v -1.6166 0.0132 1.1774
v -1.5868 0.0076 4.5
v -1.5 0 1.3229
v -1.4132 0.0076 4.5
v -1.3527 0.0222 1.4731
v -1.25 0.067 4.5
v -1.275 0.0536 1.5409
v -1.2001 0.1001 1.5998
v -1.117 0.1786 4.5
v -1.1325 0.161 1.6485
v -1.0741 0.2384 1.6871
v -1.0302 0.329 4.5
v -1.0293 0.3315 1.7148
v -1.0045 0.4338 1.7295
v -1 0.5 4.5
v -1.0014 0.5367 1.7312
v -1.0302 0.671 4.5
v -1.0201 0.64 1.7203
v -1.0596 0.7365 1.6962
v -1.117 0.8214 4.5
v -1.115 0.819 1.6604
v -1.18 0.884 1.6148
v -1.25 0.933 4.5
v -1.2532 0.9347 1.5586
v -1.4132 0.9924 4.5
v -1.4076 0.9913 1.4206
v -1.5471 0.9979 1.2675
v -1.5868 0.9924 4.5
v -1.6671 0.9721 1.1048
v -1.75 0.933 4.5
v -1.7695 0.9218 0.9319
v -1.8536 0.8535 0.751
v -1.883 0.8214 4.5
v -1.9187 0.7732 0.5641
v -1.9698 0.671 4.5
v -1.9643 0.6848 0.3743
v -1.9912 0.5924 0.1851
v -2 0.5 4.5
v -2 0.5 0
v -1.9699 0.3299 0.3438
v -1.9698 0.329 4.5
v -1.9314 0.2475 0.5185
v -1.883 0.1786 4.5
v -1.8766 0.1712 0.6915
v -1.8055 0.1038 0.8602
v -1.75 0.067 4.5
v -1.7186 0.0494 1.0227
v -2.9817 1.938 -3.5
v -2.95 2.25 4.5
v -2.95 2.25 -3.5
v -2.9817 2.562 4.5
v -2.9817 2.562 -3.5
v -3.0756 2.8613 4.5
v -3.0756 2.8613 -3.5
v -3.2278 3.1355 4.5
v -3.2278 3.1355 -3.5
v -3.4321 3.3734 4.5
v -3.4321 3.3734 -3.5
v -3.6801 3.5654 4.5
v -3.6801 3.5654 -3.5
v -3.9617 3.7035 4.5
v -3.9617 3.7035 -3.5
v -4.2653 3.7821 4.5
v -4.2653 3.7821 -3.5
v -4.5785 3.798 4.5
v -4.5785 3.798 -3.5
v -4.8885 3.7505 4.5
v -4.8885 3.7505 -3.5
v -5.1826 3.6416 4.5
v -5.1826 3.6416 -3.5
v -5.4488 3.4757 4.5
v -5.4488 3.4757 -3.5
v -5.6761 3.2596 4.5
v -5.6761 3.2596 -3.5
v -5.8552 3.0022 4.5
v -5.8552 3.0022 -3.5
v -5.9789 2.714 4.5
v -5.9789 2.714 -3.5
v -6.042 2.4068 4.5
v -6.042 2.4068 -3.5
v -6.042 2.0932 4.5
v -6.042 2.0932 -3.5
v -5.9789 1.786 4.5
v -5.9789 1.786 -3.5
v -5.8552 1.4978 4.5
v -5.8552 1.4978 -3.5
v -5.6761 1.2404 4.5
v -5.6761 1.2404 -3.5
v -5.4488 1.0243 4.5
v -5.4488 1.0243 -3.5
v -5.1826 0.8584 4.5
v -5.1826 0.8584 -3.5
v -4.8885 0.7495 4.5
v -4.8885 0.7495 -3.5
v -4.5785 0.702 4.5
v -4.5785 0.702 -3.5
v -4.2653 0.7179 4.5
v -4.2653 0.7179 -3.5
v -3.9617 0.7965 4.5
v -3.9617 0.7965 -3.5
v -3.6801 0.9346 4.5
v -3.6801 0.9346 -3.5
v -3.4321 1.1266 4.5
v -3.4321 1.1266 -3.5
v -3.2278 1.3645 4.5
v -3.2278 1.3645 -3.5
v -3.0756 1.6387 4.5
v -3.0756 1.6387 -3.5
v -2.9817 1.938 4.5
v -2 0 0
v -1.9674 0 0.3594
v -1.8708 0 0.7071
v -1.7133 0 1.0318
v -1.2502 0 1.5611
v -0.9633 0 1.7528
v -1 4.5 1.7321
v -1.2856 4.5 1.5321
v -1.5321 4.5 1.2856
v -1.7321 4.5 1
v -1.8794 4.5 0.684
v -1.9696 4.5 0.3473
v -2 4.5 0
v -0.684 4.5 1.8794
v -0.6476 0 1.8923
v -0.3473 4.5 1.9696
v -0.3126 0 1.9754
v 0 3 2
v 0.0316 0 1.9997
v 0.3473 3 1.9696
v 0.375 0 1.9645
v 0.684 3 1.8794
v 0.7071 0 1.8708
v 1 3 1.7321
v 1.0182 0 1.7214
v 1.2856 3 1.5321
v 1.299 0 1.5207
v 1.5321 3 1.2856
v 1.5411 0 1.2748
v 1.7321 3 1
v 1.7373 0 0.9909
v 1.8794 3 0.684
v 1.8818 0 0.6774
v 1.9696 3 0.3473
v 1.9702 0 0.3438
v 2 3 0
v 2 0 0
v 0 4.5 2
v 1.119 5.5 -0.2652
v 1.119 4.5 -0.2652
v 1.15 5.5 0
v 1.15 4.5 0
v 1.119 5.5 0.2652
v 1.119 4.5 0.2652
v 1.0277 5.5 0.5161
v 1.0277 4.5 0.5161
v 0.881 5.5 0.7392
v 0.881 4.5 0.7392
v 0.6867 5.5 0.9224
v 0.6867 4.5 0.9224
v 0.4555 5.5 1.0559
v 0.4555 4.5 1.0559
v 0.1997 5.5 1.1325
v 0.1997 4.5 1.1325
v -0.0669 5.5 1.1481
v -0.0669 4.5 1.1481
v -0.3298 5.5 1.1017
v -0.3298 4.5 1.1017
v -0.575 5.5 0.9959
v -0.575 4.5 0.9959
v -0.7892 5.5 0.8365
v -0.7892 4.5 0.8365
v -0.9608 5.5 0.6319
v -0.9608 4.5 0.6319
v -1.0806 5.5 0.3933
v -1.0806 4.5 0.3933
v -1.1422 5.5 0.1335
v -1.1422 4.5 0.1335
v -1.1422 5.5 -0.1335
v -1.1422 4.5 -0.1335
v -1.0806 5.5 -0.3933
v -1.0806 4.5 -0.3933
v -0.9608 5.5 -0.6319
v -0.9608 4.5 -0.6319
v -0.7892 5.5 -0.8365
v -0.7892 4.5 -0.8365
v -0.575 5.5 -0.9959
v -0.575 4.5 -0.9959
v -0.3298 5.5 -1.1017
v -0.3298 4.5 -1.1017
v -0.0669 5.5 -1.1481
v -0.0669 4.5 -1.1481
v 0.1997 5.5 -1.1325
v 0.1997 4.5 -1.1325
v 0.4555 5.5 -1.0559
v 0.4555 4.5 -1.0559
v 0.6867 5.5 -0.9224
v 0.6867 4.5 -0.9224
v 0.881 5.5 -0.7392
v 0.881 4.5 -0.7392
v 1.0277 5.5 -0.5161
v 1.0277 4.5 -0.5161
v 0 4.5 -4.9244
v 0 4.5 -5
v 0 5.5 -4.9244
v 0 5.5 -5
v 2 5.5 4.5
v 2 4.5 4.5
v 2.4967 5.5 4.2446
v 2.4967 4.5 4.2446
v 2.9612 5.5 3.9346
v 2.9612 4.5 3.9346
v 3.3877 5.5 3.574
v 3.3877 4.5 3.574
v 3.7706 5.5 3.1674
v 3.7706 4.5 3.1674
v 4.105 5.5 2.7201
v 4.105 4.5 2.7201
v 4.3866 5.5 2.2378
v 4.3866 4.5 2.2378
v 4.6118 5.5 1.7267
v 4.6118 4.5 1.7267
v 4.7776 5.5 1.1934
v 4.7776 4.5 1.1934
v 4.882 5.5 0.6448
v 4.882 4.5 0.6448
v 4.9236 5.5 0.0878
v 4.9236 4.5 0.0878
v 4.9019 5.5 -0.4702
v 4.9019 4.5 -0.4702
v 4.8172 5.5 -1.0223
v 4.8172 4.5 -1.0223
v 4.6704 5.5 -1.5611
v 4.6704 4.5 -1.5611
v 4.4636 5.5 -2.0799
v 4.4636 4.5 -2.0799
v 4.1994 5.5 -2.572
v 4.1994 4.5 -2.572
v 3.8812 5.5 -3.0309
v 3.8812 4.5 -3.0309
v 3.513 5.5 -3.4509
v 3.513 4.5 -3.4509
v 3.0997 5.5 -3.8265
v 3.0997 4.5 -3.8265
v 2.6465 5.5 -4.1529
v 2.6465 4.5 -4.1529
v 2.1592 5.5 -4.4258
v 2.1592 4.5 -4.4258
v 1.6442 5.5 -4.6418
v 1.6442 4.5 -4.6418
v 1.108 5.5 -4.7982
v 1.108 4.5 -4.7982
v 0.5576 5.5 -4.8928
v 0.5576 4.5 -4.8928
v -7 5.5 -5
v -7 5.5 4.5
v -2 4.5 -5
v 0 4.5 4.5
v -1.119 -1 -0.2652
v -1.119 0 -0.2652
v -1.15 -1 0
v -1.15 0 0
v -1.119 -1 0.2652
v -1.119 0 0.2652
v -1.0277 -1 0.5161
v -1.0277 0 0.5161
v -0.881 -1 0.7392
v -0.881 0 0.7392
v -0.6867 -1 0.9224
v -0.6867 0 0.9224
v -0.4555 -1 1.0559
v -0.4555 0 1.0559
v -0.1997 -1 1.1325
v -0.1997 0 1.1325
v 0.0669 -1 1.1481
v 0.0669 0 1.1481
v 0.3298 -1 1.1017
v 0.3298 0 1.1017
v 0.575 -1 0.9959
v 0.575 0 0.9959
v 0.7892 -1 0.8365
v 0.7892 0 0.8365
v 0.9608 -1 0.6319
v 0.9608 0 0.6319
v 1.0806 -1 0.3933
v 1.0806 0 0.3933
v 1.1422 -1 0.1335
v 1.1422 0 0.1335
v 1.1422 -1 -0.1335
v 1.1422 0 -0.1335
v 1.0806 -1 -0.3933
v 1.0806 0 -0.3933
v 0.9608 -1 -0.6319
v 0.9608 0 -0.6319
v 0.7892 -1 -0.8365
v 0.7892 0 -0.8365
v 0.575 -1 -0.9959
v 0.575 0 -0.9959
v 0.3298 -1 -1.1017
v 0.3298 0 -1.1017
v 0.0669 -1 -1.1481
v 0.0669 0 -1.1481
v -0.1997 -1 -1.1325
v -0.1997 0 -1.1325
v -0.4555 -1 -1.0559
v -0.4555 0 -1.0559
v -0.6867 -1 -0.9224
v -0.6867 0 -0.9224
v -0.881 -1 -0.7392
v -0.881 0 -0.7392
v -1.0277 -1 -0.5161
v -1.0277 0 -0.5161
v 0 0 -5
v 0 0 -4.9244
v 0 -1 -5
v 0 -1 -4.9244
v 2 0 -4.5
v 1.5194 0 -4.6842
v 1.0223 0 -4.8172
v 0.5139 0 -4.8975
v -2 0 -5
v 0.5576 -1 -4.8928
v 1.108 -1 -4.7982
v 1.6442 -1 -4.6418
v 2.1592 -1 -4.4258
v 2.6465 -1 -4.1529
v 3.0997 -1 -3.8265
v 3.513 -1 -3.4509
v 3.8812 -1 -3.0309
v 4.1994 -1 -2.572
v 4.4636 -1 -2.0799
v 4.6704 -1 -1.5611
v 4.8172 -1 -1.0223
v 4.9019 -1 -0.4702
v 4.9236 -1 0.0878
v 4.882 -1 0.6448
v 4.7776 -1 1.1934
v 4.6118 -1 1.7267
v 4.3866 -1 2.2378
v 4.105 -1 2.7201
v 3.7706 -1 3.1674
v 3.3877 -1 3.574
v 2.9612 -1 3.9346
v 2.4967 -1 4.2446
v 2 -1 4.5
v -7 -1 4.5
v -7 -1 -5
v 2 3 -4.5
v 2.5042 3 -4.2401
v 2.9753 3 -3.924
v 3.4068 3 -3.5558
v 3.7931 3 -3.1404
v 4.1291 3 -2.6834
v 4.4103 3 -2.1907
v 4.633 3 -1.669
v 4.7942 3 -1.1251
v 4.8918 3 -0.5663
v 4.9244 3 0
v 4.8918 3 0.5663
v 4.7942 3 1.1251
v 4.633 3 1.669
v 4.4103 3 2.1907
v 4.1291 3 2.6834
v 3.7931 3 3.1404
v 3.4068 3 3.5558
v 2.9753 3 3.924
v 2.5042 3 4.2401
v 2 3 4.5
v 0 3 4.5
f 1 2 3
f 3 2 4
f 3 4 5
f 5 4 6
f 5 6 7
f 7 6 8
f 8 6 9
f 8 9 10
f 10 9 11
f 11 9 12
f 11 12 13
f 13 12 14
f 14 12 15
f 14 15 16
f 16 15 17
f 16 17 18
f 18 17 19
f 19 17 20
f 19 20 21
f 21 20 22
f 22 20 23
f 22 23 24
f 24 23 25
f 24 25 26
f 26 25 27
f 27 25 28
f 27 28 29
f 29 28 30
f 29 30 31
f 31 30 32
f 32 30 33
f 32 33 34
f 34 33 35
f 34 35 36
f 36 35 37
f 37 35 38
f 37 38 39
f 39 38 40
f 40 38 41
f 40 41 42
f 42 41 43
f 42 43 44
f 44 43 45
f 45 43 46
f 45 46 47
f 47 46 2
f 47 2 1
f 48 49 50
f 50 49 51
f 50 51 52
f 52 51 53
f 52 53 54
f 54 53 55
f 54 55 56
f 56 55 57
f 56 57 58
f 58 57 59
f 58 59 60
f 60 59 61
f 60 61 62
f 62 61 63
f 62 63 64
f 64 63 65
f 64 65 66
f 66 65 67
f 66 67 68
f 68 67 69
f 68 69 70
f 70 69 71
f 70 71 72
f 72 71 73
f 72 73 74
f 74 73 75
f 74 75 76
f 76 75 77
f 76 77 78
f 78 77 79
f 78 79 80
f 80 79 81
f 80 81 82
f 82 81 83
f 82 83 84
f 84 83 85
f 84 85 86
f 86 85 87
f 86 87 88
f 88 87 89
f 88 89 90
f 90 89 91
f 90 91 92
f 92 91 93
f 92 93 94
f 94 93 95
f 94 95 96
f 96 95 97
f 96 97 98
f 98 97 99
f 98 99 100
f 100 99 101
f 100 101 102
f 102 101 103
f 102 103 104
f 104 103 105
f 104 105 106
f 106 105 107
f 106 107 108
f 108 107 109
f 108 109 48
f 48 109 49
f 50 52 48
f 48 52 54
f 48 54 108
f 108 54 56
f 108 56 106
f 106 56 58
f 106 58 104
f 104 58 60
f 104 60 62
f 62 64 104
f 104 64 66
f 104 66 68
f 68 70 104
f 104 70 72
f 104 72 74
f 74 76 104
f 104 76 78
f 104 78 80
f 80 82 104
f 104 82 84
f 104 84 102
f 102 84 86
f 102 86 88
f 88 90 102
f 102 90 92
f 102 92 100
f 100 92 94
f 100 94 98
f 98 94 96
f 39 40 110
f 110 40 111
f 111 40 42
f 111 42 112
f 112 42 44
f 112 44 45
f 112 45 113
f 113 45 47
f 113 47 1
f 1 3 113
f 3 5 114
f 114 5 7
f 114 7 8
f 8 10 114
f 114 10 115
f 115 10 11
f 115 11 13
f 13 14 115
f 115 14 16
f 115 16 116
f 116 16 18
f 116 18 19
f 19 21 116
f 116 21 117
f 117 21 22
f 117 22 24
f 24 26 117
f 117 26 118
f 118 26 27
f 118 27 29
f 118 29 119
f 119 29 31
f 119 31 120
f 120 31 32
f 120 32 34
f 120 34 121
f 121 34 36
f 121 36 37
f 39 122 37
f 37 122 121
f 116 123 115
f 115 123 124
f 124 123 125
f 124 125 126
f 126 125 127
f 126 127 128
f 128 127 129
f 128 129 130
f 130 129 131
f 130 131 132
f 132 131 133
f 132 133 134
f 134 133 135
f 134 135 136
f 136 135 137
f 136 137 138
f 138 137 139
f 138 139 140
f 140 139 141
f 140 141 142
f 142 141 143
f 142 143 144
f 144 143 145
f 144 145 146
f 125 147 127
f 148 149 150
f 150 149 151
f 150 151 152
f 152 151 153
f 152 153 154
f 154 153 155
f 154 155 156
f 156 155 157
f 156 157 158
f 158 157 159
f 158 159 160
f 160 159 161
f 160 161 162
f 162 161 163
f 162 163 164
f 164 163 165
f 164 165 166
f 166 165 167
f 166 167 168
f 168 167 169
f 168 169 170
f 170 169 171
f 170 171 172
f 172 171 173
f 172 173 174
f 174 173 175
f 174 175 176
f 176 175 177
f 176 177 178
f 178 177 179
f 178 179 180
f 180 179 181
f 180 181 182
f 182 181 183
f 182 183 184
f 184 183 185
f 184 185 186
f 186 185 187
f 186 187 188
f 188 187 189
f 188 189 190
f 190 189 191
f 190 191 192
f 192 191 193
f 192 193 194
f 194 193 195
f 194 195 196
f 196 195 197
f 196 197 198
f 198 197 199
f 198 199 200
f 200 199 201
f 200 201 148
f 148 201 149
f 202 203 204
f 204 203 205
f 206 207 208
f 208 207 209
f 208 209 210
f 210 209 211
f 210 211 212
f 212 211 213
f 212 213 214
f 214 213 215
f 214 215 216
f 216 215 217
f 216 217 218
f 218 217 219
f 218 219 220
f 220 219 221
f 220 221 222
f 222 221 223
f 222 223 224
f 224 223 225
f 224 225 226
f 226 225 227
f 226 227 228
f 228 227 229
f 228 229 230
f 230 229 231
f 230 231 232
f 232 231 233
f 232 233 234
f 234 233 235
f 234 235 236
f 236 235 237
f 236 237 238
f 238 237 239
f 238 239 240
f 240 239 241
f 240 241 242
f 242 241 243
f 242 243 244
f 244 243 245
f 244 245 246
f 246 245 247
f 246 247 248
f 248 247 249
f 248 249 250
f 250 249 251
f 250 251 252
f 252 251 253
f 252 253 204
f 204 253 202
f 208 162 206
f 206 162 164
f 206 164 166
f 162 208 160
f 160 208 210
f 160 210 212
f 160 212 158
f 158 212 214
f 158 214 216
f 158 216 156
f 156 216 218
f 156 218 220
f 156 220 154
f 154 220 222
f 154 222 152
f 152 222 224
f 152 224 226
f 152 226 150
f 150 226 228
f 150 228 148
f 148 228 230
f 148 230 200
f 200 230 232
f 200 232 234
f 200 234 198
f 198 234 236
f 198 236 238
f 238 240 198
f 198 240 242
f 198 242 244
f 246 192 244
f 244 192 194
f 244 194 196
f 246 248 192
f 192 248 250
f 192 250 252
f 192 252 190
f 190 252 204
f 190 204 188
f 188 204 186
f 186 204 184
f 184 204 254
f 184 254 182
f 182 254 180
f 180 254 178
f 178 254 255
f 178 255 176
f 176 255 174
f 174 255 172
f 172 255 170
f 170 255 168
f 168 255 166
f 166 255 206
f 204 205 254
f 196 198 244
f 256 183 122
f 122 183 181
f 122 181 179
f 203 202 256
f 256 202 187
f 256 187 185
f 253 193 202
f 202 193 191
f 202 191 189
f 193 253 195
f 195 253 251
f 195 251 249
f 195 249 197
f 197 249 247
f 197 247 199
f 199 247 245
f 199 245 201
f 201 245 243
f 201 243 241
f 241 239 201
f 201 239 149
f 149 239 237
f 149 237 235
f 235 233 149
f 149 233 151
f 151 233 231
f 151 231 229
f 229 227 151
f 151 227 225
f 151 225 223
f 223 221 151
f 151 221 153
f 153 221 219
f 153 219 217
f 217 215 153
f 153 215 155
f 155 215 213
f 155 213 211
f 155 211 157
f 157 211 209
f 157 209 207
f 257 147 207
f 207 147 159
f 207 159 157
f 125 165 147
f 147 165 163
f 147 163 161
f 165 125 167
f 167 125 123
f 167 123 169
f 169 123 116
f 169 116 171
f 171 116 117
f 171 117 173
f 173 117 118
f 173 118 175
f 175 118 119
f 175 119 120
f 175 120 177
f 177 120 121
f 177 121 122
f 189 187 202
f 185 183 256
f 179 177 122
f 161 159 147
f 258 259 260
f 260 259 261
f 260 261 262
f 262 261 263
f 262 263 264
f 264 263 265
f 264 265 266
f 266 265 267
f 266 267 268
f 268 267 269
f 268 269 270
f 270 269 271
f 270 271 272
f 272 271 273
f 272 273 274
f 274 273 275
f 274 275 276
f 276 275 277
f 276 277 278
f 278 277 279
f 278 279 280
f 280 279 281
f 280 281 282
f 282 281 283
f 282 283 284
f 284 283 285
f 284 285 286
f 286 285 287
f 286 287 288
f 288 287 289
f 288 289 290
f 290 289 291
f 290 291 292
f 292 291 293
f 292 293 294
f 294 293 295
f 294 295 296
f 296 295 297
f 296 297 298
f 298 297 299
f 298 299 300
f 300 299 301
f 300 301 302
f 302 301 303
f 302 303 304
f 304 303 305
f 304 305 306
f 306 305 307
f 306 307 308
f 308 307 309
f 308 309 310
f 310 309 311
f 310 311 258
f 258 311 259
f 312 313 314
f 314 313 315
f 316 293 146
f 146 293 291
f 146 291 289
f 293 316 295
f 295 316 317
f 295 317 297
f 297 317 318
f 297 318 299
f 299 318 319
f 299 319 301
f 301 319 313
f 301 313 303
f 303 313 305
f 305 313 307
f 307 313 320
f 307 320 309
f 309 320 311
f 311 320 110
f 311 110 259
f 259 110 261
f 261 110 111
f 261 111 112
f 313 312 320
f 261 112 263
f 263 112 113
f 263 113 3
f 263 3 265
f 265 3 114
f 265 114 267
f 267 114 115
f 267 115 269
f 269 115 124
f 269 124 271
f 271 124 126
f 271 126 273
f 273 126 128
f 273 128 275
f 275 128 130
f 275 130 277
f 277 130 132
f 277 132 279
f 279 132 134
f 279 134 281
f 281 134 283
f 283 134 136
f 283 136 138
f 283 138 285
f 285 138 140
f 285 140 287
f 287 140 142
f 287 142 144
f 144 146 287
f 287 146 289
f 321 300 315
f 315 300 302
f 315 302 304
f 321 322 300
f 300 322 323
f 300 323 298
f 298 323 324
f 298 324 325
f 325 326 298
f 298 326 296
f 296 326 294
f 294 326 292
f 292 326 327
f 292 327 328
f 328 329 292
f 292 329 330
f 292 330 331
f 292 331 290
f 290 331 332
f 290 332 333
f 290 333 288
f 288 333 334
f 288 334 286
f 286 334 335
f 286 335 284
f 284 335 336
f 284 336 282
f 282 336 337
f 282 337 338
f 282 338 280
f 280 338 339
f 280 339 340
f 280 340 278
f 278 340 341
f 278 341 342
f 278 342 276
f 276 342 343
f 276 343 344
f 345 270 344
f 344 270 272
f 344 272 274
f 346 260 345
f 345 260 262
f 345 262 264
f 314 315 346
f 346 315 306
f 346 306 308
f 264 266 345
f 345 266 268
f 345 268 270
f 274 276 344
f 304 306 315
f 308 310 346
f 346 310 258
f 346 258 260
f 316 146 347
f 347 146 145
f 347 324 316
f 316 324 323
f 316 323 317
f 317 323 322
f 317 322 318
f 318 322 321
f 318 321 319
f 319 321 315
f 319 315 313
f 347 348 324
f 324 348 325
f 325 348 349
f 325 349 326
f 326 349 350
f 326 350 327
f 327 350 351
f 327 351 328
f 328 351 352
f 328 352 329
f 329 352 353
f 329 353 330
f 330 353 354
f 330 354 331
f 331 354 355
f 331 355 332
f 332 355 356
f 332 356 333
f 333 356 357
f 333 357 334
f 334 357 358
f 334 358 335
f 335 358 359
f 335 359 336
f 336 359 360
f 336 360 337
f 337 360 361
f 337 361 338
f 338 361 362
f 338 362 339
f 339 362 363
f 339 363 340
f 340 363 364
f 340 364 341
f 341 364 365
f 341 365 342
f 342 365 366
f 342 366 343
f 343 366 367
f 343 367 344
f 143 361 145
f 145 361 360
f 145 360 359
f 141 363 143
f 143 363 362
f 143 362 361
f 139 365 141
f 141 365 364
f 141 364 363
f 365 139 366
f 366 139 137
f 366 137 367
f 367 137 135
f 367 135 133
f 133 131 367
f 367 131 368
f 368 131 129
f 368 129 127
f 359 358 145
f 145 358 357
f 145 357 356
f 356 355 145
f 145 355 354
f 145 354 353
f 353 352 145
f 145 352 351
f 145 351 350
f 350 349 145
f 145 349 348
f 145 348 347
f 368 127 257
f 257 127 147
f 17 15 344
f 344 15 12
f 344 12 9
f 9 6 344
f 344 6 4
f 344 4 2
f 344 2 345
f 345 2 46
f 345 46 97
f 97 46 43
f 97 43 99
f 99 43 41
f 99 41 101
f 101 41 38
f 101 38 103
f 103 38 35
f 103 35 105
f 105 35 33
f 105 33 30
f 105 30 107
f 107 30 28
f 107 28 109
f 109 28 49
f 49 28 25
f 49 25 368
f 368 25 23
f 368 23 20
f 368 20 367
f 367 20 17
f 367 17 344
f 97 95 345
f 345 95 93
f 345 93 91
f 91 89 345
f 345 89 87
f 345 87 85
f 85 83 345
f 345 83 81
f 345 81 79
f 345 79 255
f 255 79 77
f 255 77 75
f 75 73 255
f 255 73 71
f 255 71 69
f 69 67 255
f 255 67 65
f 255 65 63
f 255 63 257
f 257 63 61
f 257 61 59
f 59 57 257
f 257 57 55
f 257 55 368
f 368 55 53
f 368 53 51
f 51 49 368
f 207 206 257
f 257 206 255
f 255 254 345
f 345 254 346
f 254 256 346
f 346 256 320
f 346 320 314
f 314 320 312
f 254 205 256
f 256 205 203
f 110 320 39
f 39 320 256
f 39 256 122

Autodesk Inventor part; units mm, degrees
ref_plane "YZ Plane" through (0, 0, 0) normal (1, 0, 0) x (0, 1, 0)
ref_plane "XZ Plane" through (0, 0, 0) normal (0, 1, 0) x (-1, 0, 0)
ref_plane "XY Plane" through (0, 0, 0) normal (0, 0, 1) x (1, 0, 0)
sketch "スケッチ1" plane through (0, 0, 0) normal (0, 1, 0) x (-1, 0, 0)
  circle A0 centre (0, 0) radius 1.15
  circle A1 centre (0, 0) radius 2
  circle A2 centre (0, 0) radius 5
  line L0 (0, 0) -> (7, 0)
  line L1 (7, 0) -> (7, 4.5)
  line L2 (7, 4.5) -> (0, 4.5)
  line L3 (0, 4.5) -> (0, 0)
  line L4 (0, 0) -> (7, 0)
  line L5 (7, 0) -> (7, -5)
  line L6 (7, -5) -> (0, -5)
  line L7 (0, -5) -> (0, 0)
  line L8 (0, 4.5) -> (-2, 4.5)
  line L9 (-2, 4.5) -> (-2, 0)
  line L10 (-2, 0) -> (0, 0)
  line L11 (0, 0) -> (0, 4.5)
  circle A3 centre (0, 0) radius 3
  line L12 (-2, 0) -> (-2, -5)
  line L13 (-2, -5) -> (0, -5)
  line L14 (2, 0) -> (2, -5)
  circle A4 centre (0, 0) radius 4.9244
  line L15 (-2, 0) -> (-4.9244, 0)
  point P0 (0, 2)
  point P1 (-2, 2.2361)
  point P2 (-2, -2.2361)
  point P3 (-2, -4.5826)
  point P4 (-2, -4.5)
  point P5 (0, -4.9244)
  dimension "d2" = 10
  dimension "d0" = 2.3
  dimension "d1" = 4
  dimension "d3" = 7
  dimension "d4" = 4.5
  dimension "d5" = 6
extrude "押し出し1" add sketch "スケッチ1" along normal blind 4.5 contours A1 L3 A3 L0 | L0 A3 L14 | A3 L3 L2 A4 L0 | L0 A4 L14 A3 | A4 L2 A2 L0 | L0 A2 L14 A4 | L0 L5 L6 L14 A2 | A2 L2 L1 L0
extrude "押し出し2" add sketch "スケッチ1" along normal blind 3 contours A1 L9 A3 L3 | L15 A3 L9 | L12 A3 L15 | A3 L9 L8 L3 | A3 L15 A4 L9 | L12 A4 L15 A3
extrude "押し出し3" add sketch "スケッチ1" against normal blind 1 contours L0 A1 L7 A0 | A0 L3 A1 L0 | A0 L10 A1 L3 | L7 A1 L10 A0 | L14 A3 L7 A1 | A1 L3 A3 L0 | L0 A3 L14 | A1 L9 A3 L3 | L7 A3 L12 A1 | A3 L3 L2 A4 L0 | L0 A4 L14 A3 | L14 A4 L7 A3 | L15 A3 L9 | L12 A3 L15 | A3 L9 L8 L3 | L7 A4 L12 A3 | A4 L2 A2 L0 | L0 A2 L14 A4 | L14 A2 L7 A4 | A3 L15 A4 L9 | L12 A4 L15 A3 | L0 L5 L6 L14 A2 | A2 L2 L1 L0 | L14 L6 A2
sketch "スケッチ2" plane through (0, 4.5, 0) normal (0, 1, 0) x (1, 0, 0)
  circle A0 centre (0, 0) radius 1.15
  circle A1 centre (0, 0) radius 2
  circle A2 centre (0, 0) radius 4.9244
  line L0 (0, 0) -> (2, 0)
  line L1 (2, 0) -> (2, -4.5)
  line L2 (2, -4.5) -> (0, -4.5)
  line L3 (0, -4.5) -> (0, 0)
  line L4 (-2, 5) -> (-7, 5) projected
  line L5 (0, -4.5) -> (-7, -4.5)
  line L6 (-7, -4.5) -> (-7, 5)
  line L7 (-7, 5) -> (0, 5)
  line L8 (0, 5) -> (0, -4.5)
  line L9 (0, 0) -> (2, 0)
  line L10 (2, 0) -> (2, 5)
  line L11 (2, 5) -> (0, 5)
  line L12 (0, 5) -> (0, 0)
  point P0 (0, 4.9244)
  dimension "d12" = 4
extrude "押し出し4" add sketch "スケッチ2" along normal blind 1 contours L0 A1 L3 A0 | A0 L8 A1 L0 | A0 L3 A1 L8 | L1 L2 L3 A1 | L10 A2 L1 | A1 L8 A2 L10 | A1 L3 L5 A2 L8 | A2 L5 L6 L4 L7 L8
sketch "スケッチ3" plane through (0, 3, 4.5) normal (0, 0, 1) x (1, 0, 0)
  line L0 (-7, -4) -> (-7, 2.5) projected
  line L1 (-7, 2.5) -> (-4.5, 2.5)
  line L2 (-4.5, 2.5) -> (-4.5, -0.75)
  line L3 (-4.5, -0.75) -> (-7, -0.75)
  line L4 (-7, -0.75) -> (-7, 2.5)
  circle A0 centre (-4.5, -0.75) radius 1.55
  line L5 (0, -3) -> (-2, -3) projected
  line L6 (0, -3) -> (-1.5, -3)
  line L7 (-1.5, -3) -> (-1.5, -2.5)
  line L8 (-1.5, -2.5) -> (0, -2.5)
  line L9 (0, -2.5) -> (0, -3)
  circle A1 centre (-1.5, -2.5) radius 0.5
  dimension "d15" = 2.5
  dimension "d16" = 3.25
  dimension "d17" = 3.1
  dimension "d18" = 1.5
  dimension "d19" = 0.5
extrude "押し出し5" cut sketch "スケッチ3" against normal blind 8 contours A0 L2 L3 | L3 L2 A0 | A1 L8 L7 | L7 L8 A1
properties part number "rod5.1"
